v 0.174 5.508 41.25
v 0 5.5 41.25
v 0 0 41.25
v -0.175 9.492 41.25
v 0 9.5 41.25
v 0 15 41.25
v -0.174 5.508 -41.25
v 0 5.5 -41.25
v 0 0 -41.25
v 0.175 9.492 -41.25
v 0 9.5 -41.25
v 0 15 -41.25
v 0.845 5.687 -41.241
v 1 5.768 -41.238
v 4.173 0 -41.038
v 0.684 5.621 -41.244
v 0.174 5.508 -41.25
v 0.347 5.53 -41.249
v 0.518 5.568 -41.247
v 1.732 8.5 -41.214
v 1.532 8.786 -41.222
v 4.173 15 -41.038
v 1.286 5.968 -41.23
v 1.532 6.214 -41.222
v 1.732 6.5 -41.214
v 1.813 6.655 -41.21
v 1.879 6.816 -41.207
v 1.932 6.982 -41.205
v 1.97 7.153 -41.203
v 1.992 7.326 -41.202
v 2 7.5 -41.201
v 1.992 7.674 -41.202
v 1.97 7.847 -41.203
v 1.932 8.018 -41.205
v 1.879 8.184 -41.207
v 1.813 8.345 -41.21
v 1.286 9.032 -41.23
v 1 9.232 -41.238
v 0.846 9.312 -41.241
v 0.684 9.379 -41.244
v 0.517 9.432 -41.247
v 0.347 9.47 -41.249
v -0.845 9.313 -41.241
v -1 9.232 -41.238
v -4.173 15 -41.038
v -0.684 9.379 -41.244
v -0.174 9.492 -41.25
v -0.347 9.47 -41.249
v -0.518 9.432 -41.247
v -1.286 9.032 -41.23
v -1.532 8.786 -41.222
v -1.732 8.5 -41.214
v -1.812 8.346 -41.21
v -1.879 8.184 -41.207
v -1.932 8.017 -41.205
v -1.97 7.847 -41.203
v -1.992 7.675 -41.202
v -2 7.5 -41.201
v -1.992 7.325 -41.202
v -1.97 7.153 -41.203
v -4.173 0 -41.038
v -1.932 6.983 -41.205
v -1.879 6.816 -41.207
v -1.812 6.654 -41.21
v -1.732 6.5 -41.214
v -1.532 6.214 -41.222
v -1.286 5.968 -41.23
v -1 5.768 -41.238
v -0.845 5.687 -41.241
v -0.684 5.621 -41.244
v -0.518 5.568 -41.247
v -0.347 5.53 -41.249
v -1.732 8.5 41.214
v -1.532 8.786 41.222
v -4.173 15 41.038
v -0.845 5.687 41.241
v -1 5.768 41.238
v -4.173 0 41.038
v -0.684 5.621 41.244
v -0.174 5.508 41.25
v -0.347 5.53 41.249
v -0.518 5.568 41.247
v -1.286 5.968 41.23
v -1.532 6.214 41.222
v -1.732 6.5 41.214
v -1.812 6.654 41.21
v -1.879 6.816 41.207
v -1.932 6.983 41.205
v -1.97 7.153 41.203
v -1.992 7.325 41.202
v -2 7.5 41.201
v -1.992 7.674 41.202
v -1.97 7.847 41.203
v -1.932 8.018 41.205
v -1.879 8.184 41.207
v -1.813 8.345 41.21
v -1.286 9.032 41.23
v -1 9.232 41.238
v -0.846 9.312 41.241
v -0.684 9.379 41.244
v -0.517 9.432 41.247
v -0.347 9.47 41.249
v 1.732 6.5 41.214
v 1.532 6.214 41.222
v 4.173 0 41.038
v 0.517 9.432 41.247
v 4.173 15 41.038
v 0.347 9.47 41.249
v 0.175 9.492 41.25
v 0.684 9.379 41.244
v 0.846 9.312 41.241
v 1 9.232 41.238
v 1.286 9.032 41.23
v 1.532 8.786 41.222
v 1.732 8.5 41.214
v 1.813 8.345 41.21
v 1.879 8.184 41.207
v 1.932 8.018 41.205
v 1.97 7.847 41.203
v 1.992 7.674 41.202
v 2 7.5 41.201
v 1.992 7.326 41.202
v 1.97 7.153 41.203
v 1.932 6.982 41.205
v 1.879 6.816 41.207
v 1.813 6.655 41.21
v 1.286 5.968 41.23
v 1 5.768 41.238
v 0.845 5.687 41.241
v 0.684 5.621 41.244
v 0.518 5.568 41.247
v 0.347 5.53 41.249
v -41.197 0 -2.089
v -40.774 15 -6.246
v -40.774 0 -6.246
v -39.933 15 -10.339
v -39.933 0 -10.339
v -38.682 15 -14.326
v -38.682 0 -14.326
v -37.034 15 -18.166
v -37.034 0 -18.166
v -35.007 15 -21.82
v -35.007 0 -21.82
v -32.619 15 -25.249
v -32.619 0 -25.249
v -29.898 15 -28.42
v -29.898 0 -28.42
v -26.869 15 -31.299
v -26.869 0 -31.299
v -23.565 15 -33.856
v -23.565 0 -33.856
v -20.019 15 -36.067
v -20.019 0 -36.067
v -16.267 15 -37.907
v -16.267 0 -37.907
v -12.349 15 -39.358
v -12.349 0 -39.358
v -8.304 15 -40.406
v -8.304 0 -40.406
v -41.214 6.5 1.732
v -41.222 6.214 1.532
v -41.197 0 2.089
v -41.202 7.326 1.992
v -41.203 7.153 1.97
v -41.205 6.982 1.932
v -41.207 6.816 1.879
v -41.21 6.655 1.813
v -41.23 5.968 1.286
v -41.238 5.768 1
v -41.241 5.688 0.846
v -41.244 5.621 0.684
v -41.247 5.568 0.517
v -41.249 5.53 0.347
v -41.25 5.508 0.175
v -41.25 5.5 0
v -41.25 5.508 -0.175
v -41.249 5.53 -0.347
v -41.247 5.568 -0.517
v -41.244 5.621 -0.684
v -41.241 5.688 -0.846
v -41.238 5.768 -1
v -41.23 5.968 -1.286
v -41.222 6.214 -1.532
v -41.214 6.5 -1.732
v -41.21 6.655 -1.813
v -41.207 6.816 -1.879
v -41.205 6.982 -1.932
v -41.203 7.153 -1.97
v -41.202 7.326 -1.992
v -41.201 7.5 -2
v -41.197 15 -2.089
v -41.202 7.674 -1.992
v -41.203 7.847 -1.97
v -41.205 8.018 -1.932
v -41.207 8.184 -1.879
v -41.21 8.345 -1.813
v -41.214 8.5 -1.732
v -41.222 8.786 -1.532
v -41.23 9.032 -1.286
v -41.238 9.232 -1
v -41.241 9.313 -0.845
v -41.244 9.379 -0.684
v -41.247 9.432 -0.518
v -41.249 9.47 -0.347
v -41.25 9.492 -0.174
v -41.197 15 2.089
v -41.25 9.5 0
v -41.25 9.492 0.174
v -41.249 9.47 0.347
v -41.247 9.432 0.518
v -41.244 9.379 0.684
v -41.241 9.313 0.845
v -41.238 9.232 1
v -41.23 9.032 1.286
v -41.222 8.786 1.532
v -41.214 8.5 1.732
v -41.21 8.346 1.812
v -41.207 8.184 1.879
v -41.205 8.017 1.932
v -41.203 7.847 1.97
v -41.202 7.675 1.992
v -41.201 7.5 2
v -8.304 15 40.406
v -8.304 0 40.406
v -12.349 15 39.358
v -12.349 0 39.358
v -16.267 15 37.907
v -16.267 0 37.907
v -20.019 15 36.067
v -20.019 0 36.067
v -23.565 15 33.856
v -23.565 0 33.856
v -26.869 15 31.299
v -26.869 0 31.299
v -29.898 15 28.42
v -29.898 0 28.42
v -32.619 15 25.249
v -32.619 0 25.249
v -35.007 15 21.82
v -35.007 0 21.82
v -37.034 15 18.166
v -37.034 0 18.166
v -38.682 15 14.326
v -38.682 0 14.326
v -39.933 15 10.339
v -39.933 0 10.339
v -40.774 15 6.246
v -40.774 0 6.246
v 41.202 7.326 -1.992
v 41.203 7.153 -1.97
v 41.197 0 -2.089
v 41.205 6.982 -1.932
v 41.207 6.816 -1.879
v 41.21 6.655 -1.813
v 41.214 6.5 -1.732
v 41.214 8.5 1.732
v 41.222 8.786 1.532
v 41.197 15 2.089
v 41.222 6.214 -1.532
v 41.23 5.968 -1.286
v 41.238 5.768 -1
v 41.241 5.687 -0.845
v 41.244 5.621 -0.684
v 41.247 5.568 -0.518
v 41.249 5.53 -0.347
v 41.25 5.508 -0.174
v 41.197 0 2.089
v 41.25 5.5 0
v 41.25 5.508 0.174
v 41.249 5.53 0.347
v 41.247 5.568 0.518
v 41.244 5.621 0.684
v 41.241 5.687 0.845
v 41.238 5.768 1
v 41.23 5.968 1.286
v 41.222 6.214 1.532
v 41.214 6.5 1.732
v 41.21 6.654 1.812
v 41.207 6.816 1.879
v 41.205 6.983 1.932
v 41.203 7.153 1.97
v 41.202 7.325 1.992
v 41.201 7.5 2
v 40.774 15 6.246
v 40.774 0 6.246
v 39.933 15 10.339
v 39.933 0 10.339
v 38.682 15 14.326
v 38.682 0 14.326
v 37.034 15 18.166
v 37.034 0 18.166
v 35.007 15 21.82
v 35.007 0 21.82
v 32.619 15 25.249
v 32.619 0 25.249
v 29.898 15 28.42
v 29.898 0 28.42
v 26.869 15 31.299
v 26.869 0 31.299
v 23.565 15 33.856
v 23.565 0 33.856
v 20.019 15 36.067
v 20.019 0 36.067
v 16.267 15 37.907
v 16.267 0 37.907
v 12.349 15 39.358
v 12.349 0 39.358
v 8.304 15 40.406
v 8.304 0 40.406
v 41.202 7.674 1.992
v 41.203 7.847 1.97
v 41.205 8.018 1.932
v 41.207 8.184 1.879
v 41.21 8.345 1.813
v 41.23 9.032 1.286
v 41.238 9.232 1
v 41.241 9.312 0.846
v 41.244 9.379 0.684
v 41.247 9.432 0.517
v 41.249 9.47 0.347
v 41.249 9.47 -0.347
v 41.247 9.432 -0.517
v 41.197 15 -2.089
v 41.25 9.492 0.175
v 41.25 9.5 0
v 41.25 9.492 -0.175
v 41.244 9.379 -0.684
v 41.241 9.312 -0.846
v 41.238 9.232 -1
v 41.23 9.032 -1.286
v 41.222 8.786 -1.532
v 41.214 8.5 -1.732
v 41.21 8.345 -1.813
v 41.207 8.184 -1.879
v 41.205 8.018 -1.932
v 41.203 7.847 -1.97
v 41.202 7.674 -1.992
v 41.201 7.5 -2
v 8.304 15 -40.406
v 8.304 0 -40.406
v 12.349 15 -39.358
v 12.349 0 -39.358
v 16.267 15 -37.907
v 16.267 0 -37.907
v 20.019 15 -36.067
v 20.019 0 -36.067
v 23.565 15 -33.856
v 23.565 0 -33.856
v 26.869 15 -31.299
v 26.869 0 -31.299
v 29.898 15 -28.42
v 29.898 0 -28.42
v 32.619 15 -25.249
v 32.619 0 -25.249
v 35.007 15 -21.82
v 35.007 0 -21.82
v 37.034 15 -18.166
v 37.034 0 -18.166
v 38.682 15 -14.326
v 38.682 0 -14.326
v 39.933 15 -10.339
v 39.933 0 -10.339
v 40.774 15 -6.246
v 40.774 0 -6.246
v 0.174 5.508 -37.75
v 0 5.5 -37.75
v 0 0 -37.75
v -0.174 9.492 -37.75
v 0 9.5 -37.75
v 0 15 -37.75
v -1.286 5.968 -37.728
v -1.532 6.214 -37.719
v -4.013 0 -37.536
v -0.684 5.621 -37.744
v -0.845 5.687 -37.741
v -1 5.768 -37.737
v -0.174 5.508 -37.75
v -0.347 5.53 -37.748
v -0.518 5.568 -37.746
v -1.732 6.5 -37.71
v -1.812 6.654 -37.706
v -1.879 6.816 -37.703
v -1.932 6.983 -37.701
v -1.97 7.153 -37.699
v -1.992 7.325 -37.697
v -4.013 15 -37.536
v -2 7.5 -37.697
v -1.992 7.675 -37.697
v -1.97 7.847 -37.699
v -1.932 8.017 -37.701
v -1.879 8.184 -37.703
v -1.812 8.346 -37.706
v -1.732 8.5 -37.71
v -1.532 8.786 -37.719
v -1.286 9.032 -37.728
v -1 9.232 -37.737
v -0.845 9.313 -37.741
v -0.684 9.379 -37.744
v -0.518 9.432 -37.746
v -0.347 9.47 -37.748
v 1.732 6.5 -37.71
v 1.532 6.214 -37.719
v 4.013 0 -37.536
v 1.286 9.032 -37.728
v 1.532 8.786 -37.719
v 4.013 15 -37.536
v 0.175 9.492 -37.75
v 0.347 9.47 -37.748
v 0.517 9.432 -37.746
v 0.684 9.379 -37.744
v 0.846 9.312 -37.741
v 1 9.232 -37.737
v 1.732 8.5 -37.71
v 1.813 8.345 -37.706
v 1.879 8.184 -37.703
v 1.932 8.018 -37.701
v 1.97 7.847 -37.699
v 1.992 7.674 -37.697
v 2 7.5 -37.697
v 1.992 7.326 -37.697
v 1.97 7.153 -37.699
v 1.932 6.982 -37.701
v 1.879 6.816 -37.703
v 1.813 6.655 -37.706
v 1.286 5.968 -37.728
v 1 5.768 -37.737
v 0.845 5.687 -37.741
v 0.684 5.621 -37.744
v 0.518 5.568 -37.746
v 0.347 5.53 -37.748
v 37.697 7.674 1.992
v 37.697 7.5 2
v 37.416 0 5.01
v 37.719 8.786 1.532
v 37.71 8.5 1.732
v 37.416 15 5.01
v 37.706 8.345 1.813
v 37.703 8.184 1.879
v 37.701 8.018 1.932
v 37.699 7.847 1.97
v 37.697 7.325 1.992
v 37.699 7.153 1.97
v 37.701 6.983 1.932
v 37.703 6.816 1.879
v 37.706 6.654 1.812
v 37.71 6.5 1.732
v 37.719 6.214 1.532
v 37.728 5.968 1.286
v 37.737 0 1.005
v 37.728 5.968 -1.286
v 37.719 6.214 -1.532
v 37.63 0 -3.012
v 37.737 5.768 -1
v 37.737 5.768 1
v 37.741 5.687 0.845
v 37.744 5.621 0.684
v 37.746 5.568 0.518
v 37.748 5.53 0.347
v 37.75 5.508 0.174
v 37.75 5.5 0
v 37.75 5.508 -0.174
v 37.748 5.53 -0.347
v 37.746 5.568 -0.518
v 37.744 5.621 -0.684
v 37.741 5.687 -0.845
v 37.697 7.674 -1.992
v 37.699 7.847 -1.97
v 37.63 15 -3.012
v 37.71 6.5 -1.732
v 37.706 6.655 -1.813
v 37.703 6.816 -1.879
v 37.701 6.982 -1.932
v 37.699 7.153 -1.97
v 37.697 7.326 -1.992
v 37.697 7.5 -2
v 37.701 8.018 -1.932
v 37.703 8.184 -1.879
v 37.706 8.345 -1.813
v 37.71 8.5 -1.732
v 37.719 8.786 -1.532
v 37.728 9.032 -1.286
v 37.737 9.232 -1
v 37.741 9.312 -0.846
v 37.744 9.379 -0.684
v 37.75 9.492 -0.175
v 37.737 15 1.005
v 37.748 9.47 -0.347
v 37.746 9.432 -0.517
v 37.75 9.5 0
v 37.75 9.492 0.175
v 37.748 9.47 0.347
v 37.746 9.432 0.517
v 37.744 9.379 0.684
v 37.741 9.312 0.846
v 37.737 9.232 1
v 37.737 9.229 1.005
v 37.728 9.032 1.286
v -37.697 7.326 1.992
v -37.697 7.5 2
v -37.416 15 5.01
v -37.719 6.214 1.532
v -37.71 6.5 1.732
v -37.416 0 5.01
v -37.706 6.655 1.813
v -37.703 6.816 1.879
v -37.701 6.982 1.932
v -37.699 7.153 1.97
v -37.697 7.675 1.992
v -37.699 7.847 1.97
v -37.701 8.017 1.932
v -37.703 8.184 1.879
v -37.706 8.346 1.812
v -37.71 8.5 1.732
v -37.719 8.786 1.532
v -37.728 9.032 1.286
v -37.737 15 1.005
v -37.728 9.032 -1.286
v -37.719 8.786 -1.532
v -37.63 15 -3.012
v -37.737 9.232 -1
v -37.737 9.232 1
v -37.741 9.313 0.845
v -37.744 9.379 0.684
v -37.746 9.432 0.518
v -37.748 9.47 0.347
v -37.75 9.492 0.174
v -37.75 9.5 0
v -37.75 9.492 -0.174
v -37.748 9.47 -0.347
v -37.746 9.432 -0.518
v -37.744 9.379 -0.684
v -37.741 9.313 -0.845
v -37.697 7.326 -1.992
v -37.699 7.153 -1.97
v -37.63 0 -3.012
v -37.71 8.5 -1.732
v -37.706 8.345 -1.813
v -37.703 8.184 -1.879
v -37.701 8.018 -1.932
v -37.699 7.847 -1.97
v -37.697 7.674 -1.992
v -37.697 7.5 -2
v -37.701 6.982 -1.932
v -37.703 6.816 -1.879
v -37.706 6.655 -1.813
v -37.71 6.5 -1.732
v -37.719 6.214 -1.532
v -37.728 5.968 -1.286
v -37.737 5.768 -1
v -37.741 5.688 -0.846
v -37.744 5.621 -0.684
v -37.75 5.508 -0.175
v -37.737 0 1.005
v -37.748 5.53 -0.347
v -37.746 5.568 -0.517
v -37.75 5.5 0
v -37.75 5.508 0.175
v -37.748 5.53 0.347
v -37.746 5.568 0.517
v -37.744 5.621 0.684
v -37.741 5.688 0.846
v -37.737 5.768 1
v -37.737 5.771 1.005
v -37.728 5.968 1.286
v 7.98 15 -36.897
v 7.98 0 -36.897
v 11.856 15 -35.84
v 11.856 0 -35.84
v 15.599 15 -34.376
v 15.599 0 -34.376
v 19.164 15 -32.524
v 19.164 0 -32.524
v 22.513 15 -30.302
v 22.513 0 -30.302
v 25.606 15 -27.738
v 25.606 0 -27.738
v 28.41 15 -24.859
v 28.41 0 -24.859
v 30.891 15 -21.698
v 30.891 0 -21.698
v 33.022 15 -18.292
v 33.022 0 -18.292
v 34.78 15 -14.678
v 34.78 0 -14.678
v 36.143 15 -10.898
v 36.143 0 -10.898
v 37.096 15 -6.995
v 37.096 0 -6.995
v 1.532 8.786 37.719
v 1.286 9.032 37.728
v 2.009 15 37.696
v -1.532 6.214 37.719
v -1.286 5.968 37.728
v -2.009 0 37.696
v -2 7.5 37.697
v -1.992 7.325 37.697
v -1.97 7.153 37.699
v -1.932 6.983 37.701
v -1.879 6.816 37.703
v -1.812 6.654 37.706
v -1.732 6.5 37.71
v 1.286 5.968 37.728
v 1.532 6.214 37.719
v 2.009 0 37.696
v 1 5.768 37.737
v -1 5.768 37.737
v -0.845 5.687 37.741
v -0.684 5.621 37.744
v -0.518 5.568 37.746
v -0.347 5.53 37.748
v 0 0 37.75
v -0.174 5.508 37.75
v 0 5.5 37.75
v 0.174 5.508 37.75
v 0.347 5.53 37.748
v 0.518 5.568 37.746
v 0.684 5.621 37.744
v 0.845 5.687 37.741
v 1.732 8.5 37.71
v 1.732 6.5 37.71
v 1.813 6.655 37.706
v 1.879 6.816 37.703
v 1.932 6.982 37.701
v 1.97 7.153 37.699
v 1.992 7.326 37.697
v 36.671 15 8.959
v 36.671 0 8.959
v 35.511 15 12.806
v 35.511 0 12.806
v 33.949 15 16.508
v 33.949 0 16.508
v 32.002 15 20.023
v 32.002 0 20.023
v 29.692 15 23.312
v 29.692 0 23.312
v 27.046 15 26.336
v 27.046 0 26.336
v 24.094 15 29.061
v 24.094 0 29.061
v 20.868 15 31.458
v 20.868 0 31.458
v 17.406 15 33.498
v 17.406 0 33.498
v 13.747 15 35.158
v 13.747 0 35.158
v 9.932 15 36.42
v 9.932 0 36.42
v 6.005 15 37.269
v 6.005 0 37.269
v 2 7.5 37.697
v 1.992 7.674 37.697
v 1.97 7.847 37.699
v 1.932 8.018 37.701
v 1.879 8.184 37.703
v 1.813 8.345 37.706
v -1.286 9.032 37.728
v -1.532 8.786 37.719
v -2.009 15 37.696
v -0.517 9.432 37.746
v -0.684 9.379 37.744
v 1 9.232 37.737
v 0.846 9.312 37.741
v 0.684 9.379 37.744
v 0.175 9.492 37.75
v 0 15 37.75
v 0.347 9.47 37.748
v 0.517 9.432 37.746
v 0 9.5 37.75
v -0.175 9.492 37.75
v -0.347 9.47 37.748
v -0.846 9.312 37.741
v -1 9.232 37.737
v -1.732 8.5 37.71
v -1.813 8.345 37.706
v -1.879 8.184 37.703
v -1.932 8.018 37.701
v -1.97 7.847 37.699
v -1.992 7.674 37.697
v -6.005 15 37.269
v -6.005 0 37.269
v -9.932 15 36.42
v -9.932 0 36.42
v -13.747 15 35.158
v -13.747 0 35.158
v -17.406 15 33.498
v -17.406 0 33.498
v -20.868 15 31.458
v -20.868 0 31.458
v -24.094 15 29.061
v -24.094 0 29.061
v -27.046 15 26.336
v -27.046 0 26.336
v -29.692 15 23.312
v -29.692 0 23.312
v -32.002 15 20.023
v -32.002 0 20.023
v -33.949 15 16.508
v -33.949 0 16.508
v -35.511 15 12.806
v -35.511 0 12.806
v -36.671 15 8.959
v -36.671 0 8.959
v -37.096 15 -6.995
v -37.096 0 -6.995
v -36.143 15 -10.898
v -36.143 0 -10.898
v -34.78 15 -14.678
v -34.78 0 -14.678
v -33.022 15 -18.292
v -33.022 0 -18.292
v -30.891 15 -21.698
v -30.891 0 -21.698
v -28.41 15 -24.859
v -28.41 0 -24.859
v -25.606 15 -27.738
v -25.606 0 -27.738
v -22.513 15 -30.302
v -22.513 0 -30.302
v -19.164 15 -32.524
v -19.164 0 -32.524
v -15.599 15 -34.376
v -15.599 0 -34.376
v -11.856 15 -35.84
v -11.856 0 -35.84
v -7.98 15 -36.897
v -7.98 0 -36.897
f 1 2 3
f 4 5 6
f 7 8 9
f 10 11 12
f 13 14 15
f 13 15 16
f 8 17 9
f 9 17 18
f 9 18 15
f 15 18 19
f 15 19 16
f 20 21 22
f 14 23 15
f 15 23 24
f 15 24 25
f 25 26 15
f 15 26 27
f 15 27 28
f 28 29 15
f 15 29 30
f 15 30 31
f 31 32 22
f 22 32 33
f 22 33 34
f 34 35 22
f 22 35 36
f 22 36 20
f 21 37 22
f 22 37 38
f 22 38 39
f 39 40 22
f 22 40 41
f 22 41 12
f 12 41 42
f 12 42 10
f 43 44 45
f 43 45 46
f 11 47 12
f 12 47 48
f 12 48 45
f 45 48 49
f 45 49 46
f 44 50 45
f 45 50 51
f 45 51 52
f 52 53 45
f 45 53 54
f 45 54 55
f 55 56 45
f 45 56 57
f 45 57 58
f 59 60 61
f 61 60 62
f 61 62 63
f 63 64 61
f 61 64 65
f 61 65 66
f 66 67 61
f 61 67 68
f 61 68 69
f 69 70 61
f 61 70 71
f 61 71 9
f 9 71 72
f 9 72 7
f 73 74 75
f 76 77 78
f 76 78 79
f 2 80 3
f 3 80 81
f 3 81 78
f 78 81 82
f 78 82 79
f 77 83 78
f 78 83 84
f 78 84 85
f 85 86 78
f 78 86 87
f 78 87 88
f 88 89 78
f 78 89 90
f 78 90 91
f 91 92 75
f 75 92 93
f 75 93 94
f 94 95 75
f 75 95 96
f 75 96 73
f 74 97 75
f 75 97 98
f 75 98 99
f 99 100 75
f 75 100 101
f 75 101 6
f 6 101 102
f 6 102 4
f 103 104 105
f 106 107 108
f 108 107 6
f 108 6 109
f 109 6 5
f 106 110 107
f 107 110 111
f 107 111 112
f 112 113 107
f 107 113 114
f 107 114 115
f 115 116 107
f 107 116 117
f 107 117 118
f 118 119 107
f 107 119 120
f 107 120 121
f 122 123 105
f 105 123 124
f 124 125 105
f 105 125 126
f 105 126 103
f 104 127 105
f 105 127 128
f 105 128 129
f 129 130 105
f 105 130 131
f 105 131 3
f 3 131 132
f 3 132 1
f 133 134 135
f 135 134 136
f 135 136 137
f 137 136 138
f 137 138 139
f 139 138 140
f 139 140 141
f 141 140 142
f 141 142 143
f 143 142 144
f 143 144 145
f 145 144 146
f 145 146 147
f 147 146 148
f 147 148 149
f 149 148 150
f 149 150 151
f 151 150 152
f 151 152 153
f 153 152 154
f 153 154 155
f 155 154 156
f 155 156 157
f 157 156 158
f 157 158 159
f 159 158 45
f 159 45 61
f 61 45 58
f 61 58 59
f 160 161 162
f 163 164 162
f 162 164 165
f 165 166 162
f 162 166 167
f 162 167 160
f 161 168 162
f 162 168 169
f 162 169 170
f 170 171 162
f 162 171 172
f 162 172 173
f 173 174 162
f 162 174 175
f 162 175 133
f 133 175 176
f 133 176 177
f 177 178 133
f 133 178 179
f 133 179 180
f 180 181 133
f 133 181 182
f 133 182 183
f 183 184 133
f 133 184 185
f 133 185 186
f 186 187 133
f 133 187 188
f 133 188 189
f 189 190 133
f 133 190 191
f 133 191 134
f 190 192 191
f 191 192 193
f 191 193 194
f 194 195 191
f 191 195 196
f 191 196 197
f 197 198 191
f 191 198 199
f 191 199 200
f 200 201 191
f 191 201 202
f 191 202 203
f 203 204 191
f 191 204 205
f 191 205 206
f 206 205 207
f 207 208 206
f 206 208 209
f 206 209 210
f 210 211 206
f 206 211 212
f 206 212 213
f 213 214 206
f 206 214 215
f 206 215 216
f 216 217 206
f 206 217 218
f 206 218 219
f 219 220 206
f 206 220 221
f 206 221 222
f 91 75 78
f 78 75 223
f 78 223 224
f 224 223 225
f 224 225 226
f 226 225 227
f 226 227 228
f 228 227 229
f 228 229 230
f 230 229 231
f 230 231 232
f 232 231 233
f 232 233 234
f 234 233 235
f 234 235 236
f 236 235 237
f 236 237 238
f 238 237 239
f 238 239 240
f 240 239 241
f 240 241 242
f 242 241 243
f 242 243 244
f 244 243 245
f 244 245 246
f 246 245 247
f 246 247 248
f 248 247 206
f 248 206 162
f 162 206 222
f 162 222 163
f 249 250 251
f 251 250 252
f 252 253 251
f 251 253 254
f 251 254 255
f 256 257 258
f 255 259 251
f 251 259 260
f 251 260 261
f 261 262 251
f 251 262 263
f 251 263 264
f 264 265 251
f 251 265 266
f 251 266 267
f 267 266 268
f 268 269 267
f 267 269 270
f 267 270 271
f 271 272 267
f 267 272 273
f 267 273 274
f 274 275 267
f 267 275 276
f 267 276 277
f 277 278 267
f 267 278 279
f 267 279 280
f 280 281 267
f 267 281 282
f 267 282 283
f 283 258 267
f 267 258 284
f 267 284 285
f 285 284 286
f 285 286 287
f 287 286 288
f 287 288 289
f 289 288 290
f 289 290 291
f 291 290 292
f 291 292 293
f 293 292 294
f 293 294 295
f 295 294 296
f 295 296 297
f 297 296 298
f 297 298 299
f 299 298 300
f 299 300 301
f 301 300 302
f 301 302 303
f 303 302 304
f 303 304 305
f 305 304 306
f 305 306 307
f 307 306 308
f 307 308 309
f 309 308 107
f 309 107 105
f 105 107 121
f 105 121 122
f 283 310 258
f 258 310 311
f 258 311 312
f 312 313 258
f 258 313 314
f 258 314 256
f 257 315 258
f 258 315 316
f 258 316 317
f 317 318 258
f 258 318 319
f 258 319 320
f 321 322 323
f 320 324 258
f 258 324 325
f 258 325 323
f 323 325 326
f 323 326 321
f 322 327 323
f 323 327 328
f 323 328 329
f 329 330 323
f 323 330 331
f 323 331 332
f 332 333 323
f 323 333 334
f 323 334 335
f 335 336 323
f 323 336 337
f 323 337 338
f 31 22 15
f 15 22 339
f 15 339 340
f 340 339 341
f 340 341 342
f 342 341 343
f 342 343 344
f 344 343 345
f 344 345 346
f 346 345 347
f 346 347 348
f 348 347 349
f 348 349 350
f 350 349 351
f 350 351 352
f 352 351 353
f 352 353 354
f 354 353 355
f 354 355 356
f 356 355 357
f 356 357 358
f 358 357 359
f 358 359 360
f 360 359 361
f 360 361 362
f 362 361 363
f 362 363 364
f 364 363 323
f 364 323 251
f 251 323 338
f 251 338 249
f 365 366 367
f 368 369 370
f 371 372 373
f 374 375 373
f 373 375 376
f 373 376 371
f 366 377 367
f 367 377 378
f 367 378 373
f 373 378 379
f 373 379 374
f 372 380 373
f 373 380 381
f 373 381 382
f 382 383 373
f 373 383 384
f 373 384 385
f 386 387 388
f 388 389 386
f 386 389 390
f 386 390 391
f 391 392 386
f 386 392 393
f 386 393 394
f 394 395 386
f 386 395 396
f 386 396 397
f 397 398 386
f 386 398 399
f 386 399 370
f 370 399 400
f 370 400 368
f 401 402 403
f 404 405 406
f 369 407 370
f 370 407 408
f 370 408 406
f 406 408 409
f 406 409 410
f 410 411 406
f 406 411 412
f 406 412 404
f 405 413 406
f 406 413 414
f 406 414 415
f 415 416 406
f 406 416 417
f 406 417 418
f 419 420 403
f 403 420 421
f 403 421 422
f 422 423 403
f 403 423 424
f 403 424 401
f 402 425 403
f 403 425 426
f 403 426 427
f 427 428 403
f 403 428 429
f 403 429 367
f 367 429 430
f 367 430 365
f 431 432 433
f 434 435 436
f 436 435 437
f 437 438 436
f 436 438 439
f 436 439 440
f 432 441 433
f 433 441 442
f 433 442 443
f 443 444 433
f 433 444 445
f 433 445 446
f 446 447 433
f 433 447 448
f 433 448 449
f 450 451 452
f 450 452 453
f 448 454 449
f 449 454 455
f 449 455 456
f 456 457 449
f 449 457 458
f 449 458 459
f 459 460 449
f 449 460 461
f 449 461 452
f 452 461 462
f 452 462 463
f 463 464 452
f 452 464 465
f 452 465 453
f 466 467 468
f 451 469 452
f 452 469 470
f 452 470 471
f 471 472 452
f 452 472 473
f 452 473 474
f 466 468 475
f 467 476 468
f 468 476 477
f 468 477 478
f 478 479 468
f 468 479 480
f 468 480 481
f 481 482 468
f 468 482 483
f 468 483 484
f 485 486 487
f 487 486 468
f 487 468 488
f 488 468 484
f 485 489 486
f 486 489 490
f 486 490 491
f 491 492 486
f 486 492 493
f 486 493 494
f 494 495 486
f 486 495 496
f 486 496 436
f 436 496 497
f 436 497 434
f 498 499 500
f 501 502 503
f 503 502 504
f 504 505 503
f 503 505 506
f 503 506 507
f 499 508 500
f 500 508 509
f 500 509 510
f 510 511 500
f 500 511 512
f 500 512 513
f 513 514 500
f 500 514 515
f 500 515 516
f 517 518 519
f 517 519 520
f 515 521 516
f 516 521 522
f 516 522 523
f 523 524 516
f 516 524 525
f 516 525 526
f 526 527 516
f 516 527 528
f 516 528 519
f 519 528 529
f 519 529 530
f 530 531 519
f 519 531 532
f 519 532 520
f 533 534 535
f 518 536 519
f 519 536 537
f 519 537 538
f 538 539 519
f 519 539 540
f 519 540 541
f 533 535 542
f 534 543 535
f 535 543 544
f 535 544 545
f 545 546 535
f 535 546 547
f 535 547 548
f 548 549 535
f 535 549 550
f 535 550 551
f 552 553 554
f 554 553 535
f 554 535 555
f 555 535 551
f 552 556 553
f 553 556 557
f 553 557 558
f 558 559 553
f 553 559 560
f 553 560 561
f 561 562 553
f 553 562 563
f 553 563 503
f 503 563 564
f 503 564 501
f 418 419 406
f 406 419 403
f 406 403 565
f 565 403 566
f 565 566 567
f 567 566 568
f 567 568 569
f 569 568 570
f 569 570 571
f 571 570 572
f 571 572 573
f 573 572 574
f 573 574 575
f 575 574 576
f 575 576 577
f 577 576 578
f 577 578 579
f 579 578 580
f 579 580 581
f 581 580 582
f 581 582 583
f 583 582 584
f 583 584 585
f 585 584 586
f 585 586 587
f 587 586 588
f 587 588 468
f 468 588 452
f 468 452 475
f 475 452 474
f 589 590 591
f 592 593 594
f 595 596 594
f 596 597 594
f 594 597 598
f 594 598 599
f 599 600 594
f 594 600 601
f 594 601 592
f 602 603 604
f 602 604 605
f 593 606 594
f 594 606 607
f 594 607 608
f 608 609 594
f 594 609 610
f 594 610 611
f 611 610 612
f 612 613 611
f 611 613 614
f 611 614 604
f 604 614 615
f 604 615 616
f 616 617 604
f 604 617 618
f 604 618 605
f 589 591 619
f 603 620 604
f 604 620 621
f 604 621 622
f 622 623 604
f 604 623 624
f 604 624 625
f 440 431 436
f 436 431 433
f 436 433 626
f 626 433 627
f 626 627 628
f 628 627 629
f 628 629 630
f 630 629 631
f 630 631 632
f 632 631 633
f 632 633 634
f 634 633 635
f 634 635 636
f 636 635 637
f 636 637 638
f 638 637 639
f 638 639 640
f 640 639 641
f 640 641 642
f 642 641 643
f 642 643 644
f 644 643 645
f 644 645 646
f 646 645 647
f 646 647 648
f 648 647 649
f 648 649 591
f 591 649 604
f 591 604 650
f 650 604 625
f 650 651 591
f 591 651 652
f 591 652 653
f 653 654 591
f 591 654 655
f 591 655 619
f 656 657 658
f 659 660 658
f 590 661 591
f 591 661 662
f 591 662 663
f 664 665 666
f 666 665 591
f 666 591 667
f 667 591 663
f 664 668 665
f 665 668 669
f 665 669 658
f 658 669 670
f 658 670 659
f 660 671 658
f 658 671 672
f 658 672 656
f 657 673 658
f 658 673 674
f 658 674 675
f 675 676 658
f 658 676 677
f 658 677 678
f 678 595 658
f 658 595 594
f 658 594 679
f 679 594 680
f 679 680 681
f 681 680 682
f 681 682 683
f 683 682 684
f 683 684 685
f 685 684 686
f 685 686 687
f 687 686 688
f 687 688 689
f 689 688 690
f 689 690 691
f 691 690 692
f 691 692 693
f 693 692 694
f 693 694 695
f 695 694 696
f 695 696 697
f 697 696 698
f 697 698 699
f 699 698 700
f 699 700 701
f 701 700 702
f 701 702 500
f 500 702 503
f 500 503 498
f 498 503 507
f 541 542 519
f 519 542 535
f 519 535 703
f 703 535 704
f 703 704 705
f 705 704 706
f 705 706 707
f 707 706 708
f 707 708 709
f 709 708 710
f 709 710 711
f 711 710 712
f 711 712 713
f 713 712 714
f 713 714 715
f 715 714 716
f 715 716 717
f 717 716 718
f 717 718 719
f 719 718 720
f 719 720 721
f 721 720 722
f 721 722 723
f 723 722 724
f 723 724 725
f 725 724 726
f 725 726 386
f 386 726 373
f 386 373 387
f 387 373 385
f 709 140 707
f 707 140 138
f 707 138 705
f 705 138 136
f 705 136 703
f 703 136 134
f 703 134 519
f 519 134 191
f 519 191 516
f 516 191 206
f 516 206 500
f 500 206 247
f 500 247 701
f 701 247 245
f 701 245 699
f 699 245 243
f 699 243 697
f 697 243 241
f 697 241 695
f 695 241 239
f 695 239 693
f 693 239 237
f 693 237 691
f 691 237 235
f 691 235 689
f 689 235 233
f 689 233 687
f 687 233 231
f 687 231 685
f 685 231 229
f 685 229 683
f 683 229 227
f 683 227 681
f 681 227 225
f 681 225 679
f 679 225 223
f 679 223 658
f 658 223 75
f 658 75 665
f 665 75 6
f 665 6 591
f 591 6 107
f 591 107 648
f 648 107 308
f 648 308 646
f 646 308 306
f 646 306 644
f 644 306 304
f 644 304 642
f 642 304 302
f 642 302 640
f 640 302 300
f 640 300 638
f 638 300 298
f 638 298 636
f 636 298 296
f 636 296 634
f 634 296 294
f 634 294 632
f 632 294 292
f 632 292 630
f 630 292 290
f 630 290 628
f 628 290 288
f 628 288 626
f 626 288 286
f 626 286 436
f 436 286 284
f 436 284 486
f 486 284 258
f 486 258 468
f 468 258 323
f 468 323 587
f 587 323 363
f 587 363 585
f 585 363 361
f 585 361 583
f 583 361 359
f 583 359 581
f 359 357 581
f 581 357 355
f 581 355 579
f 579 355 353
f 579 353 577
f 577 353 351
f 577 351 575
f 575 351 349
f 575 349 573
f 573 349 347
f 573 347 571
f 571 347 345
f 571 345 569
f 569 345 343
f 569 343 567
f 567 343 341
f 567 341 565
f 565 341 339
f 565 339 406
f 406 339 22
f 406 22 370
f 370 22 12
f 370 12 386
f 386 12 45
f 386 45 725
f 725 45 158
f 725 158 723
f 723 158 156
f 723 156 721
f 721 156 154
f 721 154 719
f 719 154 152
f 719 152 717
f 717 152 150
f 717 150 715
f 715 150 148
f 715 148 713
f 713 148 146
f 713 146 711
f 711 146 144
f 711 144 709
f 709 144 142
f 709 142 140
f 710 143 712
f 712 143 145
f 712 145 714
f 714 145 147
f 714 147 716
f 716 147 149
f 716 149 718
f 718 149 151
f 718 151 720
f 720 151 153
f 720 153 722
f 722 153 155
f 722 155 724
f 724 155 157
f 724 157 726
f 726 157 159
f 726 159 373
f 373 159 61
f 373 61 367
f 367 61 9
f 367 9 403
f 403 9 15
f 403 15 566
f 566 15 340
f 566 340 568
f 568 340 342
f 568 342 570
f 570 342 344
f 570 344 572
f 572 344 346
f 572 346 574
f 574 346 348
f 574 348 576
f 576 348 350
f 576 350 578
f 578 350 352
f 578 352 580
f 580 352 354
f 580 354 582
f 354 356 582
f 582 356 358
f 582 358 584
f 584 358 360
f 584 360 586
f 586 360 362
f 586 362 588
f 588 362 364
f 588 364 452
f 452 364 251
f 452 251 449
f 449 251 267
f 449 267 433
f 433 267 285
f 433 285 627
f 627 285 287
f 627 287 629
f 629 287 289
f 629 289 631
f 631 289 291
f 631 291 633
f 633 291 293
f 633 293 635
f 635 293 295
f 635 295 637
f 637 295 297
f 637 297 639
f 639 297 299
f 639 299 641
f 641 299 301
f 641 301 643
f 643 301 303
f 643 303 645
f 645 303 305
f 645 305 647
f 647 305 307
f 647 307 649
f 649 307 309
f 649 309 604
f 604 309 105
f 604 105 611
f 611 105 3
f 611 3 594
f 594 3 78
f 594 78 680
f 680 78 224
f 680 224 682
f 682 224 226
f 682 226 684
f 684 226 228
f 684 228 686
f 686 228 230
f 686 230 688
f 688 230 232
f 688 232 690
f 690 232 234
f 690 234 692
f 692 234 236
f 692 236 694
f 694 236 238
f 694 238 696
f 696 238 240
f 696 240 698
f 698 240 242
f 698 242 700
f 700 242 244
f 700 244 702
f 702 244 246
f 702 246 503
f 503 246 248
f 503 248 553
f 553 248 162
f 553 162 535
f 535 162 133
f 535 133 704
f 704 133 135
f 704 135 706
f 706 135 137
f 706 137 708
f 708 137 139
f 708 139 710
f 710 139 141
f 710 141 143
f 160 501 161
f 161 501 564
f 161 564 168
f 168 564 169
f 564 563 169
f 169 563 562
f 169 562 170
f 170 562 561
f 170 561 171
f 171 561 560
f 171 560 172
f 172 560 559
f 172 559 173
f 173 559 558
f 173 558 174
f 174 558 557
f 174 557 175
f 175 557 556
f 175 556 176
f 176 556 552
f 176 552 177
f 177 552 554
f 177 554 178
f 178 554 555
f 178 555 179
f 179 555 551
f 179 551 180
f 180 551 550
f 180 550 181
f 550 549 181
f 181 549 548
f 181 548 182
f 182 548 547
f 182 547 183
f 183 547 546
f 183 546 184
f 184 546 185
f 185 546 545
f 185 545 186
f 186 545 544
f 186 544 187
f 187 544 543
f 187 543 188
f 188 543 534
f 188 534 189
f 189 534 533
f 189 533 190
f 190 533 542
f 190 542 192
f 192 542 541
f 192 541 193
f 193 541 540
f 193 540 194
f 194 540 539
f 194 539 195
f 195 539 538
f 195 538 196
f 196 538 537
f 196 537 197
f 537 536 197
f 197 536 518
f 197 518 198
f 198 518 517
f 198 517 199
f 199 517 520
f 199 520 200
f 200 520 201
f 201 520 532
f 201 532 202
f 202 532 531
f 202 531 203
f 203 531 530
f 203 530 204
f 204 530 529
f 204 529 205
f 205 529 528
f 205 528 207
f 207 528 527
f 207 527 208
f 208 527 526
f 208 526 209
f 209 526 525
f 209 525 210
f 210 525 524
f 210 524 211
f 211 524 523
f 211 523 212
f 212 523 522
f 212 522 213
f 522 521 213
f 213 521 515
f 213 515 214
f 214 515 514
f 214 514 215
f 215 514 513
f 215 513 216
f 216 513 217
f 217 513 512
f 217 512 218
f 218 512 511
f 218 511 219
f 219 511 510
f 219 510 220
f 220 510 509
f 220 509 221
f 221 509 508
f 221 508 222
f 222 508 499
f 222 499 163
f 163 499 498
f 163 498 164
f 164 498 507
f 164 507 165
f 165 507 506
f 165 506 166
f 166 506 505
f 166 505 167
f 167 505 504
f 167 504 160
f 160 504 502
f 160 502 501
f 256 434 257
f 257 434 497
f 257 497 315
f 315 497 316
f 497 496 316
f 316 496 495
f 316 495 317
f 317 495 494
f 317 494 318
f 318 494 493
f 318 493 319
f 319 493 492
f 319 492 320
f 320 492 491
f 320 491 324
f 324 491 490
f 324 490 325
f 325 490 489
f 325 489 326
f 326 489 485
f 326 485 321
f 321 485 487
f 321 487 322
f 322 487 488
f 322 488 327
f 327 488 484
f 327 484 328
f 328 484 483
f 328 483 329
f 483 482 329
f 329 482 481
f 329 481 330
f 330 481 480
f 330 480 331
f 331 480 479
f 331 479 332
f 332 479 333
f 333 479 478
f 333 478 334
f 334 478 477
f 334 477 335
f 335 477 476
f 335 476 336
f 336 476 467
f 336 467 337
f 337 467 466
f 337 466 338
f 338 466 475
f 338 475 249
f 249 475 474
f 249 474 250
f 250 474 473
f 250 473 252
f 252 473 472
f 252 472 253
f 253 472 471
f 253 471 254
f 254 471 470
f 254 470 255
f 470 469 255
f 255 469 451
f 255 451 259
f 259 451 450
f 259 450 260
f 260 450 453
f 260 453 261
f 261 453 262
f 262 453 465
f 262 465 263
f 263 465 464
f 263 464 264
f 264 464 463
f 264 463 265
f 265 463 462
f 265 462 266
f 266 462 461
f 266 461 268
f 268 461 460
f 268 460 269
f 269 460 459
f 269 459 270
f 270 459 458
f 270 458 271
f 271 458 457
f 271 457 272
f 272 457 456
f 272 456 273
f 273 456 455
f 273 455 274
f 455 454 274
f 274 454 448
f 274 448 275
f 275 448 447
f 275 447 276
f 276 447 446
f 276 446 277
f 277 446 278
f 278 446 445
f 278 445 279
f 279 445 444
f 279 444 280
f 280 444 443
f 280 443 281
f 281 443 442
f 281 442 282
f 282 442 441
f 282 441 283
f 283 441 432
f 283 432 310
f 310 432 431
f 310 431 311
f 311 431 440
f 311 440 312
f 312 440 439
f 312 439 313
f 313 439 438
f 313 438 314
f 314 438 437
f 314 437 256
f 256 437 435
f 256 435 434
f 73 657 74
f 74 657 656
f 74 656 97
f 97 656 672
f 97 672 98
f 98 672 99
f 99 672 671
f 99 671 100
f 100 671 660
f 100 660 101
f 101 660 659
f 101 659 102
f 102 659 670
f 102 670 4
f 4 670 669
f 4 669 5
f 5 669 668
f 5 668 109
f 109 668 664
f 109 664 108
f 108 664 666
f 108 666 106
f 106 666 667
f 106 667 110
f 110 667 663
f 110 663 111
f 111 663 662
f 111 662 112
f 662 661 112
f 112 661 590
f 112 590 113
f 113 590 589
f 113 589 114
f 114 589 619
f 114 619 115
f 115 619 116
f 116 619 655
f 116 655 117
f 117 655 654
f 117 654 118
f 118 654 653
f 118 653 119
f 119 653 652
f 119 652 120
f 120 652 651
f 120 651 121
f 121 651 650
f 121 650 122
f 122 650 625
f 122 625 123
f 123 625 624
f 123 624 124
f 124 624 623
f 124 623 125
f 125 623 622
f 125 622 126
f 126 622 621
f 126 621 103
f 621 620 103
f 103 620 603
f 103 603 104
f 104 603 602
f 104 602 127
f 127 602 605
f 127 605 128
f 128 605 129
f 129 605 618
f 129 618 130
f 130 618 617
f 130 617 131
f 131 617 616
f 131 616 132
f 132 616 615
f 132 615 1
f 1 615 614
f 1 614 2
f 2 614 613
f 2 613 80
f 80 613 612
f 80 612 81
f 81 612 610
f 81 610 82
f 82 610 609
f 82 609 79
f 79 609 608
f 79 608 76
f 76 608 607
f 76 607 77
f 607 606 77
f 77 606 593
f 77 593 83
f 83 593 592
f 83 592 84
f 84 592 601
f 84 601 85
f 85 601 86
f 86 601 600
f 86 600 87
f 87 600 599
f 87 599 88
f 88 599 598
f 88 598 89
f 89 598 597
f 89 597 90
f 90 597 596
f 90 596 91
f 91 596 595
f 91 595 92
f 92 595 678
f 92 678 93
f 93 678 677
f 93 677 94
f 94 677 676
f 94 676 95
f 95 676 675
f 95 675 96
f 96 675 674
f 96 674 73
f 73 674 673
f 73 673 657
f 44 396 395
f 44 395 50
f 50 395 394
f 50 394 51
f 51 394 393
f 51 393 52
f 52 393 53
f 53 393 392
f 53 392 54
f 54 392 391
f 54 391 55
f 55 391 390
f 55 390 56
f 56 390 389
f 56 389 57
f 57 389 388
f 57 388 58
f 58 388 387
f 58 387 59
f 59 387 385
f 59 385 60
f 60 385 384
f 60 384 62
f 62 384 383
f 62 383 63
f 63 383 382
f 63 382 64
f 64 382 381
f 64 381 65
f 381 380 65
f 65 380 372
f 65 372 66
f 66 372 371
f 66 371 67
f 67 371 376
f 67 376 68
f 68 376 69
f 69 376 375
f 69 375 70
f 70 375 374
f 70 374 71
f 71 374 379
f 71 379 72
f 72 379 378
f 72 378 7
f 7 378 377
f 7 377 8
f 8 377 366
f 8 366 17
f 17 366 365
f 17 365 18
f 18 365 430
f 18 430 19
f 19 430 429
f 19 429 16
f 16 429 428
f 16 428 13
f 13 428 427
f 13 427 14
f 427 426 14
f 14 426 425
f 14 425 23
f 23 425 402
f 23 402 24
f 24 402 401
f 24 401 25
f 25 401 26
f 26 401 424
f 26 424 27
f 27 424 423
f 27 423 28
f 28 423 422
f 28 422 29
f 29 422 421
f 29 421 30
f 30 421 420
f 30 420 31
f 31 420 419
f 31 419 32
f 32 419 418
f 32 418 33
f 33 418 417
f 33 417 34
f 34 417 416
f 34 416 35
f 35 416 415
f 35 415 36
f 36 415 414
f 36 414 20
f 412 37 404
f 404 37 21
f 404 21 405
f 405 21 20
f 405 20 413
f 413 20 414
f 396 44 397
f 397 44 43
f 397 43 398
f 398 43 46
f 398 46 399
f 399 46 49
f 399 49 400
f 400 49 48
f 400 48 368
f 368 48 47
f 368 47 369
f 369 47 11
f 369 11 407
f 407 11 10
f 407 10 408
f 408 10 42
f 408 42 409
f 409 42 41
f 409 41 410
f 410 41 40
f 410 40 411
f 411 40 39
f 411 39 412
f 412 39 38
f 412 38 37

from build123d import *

# Parameters (mm, degrees)
SKETCH1_R               = 41.25
SKETCH1_R_2             = 37.75
BOSS_EXTRUDE1_DEPTH     = 15
CUT_EXTRUDE2_DEPTH      = 50
CUT_EXTRUDE2_DEPTH_BACK = 50
SKETCH2_R               = 2
CUT_EXTRUDE3_DEPTH      = 50
CUT_EXTRUDE3_DEPTH_BACK = 50
SKETCH4_R               = 2


with BuildPart() as part:
    # Sketch1 → Boss-Extrude1 (new body)
    with BuildSketch(Plane(origin=(0, 0, 0), x_dir=(1, 0, 0), z_dir=(0, 1, 0))):
        Circle(SKETCH1_R)
        Circle(SKETCH1_R_2, mode=Mode.SUBTRACT)
    extrude(amount=BOSS_EXTRUDE1_DEPTH)

    # Sketch2 → Cut-Extrude2 (cut, two sides: drawn at the far end of the back side and taken through both)
    with BuildSketch(Plane(origin=(0, 0, 0), x_dir=(0, 0, -1), z_dir=(1, 0, 0)).offset(-CUT_EXTRUDE2_DEPTH_BACK)):
        with Locations((0, 7.5)):
            Circle(SKETCH2_R)
    extrude(amount=CUT_EXTRUDE2_DEPTH + CUT_EXTRUDE2_DEPTH_BACK, mode=Mode.SUBTRACT)

    # Sketch4 → Cut-Extrude3 (cut, two sides: drawn at the far end of the back side and taken through both)
    with BuildSketch(Plane.XY.offset(-CUT_EXTRUDE3_DEPTH_BACK)):
        with Locations((0, 7.5)):
            Circle(SKETCH4_R)
    extrude(amount=CUT_EXTRUDE3_DEPTH + CUT_EXTRUDE3_DEPTH_BACK, mode=Mode.SUBTRACT)


solid = part.part
